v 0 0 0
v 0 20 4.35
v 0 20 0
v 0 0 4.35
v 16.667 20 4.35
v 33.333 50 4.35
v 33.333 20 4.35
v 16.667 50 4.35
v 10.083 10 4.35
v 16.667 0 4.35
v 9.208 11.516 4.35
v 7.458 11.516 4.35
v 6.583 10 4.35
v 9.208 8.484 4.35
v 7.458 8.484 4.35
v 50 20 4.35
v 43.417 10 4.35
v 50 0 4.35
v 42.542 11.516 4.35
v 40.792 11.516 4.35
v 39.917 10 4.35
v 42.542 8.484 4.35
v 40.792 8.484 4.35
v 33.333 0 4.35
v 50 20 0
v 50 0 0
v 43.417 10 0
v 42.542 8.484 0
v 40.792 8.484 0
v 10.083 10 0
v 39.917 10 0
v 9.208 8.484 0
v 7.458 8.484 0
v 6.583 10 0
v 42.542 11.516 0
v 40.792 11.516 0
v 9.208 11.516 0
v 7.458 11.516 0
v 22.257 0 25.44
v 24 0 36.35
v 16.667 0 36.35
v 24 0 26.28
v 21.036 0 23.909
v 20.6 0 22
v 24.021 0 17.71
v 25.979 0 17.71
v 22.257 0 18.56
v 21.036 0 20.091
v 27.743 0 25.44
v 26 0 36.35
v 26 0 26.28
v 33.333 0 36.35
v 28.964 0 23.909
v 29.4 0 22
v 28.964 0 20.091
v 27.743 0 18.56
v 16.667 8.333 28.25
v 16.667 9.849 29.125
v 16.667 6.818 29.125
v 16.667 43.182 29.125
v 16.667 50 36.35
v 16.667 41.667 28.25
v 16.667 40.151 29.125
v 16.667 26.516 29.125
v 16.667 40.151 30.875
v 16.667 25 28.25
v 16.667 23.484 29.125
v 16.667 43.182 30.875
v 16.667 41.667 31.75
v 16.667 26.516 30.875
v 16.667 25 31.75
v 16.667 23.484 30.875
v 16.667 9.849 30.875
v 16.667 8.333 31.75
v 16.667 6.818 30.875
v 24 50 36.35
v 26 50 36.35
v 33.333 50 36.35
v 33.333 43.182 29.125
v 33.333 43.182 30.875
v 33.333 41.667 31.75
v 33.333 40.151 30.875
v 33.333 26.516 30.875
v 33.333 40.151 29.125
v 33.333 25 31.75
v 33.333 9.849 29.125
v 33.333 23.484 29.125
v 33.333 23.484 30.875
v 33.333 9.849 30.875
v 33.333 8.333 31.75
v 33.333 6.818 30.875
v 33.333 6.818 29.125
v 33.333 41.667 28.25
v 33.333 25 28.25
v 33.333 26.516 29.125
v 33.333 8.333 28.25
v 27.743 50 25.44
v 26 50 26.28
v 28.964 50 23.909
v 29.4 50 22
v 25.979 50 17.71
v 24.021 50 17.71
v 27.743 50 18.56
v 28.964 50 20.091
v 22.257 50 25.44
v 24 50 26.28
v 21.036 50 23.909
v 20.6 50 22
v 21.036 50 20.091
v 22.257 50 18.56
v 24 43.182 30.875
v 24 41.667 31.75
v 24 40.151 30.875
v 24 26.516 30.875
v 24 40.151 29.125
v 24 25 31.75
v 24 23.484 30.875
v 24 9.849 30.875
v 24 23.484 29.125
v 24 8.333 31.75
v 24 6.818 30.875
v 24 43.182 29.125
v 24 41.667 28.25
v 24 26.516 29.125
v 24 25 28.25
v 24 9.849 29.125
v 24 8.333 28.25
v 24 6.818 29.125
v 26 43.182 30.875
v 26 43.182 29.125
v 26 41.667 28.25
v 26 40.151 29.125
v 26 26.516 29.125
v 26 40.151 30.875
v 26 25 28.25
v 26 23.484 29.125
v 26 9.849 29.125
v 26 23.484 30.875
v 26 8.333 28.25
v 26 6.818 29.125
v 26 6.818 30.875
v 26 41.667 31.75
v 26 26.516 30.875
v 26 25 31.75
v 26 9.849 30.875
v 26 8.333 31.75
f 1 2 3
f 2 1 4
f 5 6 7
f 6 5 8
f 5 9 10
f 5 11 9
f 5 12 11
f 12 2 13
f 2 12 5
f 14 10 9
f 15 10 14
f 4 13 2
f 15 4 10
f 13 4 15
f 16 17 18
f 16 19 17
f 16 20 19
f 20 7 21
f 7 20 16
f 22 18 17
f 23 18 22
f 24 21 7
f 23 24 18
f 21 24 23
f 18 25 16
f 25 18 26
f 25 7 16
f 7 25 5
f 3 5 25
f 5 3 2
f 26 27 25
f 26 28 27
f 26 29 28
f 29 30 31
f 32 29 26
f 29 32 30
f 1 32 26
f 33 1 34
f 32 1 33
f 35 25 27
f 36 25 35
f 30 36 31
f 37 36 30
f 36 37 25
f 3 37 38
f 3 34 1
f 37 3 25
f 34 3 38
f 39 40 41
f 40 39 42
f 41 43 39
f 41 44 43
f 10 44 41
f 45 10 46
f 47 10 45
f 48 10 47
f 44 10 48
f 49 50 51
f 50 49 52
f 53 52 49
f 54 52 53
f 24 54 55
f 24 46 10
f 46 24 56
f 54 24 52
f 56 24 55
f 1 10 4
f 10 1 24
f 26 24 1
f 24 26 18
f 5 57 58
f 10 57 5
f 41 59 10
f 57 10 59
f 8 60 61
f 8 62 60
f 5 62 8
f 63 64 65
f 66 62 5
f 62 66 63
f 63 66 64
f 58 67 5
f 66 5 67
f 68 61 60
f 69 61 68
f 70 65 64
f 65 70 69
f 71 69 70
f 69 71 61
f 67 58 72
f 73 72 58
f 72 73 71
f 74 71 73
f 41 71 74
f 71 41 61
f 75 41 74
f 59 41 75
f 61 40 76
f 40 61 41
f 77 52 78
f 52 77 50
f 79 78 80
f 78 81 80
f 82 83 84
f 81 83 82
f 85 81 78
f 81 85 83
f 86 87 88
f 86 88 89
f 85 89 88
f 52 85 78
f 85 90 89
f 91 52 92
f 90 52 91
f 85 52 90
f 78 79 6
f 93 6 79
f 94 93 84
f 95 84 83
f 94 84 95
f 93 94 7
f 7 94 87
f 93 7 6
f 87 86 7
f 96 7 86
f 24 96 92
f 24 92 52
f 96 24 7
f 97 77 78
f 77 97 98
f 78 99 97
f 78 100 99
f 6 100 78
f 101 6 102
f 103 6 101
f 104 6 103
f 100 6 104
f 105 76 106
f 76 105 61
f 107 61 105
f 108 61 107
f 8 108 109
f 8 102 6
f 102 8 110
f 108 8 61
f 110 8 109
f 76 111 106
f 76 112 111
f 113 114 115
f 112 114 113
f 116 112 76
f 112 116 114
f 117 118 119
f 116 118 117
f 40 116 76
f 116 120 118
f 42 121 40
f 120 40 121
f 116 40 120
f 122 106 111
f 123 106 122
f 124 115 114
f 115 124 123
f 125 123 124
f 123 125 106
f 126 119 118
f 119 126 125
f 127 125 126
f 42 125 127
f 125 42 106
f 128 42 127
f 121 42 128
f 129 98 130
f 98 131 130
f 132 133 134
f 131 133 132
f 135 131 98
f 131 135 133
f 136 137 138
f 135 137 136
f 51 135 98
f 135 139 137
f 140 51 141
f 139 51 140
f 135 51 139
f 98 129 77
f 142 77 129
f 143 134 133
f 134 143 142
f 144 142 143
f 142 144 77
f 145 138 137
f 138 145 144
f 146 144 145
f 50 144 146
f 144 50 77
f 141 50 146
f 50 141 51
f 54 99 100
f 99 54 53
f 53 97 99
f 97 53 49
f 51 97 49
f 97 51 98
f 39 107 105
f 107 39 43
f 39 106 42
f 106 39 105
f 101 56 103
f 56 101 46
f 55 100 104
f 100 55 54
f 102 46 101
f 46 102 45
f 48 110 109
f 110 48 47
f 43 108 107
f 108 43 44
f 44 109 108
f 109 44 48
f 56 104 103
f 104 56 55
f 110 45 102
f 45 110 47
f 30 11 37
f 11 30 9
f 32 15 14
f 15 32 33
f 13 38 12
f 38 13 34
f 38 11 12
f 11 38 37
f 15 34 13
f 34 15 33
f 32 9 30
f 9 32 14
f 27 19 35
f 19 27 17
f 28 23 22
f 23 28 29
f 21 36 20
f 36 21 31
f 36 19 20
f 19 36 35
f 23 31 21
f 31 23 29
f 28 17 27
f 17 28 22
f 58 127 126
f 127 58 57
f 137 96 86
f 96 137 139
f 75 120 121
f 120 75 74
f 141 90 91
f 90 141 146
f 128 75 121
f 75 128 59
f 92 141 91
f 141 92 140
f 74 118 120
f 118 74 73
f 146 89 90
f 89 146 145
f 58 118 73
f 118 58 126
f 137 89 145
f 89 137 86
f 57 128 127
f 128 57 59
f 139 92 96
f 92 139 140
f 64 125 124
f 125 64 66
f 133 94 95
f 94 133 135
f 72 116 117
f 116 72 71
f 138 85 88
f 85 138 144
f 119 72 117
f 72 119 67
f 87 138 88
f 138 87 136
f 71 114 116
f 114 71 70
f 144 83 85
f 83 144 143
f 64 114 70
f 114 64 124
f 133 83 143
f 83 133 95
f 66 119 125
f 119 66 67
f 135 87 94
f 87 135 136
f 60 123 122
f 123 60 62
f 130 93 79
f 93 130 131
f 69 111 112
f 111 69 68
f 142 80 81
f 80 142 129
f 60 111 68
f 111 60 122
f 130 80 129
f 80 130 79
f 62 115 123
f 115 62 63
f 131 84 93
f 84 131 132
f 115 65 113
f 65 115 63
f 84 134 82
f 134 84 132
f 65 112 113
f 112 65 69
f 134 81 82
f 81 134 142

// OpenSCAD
// extrusion 20X20
ex_h = 20;

// screw M3
screw_d = 3+0.5;

// Rod 8mm
rod_d = 8+0.8;

// support
sup_base_h = 4.35;
sup_base_w = 50;
sup_rod_h = 22;
sup_rod_d = 50;
sup_rod_w = sup_base_w/3;
sup_hole_w = 2;

difference(){
union(){
    cube([sup_base_w,ex_h,sup_base_h]);
    translate([sup_base_w/2,sup_rod_d/2,sup_rod_h/2+5+sup_base_h])
    cube([sup_rod_w,sup_rod_d,sup_rod_h+10],true);
}
union(){
    // rod hole
    translate([sup_base_w/2,0.5*sup_rod_d,sup_rod_h+10]) 
    cube([sup_hole_w,2*sup_rod_d,sup_rod_h],true);

    translate([sup_base_w/2,sup_rod_d*1.5,sup_rod_h]) rotate([90,0,0]) 
    cylinder(d=rod_d,h=sup_rod_d*2);
    
    // screw hole Base
    translate([1/6*sup_base_w,ex_h/2,-sup_base_h])
    cylinder(h=sup_base_h*3,d=screw_d);
    
    translate([5/6*sup_base_w,ex_h/2,-sup_base_h])
    cylinder(h=sup_base_h*3,d=screw_d);
    
    // Screw hole top
    translate([0,1/6*sup_rod_d,sup_rod_h+8]) rotate([0,90,0])
    cylinder(h=sup_rod_w*3,d=screw_d);
    
    translate([0,3/6*sup_rod_d,sup_rod_h+8]) rotate([0,90,0])
    cylinder(h=sup_rod_w*3,d=screw_d);
    
    translate([0,5/6*sup_rod_d,sup_rod_h+8]) rotate([0,90,0])
    cylinder(h=sup_rod_w*3,d=screw_d);
}
}
